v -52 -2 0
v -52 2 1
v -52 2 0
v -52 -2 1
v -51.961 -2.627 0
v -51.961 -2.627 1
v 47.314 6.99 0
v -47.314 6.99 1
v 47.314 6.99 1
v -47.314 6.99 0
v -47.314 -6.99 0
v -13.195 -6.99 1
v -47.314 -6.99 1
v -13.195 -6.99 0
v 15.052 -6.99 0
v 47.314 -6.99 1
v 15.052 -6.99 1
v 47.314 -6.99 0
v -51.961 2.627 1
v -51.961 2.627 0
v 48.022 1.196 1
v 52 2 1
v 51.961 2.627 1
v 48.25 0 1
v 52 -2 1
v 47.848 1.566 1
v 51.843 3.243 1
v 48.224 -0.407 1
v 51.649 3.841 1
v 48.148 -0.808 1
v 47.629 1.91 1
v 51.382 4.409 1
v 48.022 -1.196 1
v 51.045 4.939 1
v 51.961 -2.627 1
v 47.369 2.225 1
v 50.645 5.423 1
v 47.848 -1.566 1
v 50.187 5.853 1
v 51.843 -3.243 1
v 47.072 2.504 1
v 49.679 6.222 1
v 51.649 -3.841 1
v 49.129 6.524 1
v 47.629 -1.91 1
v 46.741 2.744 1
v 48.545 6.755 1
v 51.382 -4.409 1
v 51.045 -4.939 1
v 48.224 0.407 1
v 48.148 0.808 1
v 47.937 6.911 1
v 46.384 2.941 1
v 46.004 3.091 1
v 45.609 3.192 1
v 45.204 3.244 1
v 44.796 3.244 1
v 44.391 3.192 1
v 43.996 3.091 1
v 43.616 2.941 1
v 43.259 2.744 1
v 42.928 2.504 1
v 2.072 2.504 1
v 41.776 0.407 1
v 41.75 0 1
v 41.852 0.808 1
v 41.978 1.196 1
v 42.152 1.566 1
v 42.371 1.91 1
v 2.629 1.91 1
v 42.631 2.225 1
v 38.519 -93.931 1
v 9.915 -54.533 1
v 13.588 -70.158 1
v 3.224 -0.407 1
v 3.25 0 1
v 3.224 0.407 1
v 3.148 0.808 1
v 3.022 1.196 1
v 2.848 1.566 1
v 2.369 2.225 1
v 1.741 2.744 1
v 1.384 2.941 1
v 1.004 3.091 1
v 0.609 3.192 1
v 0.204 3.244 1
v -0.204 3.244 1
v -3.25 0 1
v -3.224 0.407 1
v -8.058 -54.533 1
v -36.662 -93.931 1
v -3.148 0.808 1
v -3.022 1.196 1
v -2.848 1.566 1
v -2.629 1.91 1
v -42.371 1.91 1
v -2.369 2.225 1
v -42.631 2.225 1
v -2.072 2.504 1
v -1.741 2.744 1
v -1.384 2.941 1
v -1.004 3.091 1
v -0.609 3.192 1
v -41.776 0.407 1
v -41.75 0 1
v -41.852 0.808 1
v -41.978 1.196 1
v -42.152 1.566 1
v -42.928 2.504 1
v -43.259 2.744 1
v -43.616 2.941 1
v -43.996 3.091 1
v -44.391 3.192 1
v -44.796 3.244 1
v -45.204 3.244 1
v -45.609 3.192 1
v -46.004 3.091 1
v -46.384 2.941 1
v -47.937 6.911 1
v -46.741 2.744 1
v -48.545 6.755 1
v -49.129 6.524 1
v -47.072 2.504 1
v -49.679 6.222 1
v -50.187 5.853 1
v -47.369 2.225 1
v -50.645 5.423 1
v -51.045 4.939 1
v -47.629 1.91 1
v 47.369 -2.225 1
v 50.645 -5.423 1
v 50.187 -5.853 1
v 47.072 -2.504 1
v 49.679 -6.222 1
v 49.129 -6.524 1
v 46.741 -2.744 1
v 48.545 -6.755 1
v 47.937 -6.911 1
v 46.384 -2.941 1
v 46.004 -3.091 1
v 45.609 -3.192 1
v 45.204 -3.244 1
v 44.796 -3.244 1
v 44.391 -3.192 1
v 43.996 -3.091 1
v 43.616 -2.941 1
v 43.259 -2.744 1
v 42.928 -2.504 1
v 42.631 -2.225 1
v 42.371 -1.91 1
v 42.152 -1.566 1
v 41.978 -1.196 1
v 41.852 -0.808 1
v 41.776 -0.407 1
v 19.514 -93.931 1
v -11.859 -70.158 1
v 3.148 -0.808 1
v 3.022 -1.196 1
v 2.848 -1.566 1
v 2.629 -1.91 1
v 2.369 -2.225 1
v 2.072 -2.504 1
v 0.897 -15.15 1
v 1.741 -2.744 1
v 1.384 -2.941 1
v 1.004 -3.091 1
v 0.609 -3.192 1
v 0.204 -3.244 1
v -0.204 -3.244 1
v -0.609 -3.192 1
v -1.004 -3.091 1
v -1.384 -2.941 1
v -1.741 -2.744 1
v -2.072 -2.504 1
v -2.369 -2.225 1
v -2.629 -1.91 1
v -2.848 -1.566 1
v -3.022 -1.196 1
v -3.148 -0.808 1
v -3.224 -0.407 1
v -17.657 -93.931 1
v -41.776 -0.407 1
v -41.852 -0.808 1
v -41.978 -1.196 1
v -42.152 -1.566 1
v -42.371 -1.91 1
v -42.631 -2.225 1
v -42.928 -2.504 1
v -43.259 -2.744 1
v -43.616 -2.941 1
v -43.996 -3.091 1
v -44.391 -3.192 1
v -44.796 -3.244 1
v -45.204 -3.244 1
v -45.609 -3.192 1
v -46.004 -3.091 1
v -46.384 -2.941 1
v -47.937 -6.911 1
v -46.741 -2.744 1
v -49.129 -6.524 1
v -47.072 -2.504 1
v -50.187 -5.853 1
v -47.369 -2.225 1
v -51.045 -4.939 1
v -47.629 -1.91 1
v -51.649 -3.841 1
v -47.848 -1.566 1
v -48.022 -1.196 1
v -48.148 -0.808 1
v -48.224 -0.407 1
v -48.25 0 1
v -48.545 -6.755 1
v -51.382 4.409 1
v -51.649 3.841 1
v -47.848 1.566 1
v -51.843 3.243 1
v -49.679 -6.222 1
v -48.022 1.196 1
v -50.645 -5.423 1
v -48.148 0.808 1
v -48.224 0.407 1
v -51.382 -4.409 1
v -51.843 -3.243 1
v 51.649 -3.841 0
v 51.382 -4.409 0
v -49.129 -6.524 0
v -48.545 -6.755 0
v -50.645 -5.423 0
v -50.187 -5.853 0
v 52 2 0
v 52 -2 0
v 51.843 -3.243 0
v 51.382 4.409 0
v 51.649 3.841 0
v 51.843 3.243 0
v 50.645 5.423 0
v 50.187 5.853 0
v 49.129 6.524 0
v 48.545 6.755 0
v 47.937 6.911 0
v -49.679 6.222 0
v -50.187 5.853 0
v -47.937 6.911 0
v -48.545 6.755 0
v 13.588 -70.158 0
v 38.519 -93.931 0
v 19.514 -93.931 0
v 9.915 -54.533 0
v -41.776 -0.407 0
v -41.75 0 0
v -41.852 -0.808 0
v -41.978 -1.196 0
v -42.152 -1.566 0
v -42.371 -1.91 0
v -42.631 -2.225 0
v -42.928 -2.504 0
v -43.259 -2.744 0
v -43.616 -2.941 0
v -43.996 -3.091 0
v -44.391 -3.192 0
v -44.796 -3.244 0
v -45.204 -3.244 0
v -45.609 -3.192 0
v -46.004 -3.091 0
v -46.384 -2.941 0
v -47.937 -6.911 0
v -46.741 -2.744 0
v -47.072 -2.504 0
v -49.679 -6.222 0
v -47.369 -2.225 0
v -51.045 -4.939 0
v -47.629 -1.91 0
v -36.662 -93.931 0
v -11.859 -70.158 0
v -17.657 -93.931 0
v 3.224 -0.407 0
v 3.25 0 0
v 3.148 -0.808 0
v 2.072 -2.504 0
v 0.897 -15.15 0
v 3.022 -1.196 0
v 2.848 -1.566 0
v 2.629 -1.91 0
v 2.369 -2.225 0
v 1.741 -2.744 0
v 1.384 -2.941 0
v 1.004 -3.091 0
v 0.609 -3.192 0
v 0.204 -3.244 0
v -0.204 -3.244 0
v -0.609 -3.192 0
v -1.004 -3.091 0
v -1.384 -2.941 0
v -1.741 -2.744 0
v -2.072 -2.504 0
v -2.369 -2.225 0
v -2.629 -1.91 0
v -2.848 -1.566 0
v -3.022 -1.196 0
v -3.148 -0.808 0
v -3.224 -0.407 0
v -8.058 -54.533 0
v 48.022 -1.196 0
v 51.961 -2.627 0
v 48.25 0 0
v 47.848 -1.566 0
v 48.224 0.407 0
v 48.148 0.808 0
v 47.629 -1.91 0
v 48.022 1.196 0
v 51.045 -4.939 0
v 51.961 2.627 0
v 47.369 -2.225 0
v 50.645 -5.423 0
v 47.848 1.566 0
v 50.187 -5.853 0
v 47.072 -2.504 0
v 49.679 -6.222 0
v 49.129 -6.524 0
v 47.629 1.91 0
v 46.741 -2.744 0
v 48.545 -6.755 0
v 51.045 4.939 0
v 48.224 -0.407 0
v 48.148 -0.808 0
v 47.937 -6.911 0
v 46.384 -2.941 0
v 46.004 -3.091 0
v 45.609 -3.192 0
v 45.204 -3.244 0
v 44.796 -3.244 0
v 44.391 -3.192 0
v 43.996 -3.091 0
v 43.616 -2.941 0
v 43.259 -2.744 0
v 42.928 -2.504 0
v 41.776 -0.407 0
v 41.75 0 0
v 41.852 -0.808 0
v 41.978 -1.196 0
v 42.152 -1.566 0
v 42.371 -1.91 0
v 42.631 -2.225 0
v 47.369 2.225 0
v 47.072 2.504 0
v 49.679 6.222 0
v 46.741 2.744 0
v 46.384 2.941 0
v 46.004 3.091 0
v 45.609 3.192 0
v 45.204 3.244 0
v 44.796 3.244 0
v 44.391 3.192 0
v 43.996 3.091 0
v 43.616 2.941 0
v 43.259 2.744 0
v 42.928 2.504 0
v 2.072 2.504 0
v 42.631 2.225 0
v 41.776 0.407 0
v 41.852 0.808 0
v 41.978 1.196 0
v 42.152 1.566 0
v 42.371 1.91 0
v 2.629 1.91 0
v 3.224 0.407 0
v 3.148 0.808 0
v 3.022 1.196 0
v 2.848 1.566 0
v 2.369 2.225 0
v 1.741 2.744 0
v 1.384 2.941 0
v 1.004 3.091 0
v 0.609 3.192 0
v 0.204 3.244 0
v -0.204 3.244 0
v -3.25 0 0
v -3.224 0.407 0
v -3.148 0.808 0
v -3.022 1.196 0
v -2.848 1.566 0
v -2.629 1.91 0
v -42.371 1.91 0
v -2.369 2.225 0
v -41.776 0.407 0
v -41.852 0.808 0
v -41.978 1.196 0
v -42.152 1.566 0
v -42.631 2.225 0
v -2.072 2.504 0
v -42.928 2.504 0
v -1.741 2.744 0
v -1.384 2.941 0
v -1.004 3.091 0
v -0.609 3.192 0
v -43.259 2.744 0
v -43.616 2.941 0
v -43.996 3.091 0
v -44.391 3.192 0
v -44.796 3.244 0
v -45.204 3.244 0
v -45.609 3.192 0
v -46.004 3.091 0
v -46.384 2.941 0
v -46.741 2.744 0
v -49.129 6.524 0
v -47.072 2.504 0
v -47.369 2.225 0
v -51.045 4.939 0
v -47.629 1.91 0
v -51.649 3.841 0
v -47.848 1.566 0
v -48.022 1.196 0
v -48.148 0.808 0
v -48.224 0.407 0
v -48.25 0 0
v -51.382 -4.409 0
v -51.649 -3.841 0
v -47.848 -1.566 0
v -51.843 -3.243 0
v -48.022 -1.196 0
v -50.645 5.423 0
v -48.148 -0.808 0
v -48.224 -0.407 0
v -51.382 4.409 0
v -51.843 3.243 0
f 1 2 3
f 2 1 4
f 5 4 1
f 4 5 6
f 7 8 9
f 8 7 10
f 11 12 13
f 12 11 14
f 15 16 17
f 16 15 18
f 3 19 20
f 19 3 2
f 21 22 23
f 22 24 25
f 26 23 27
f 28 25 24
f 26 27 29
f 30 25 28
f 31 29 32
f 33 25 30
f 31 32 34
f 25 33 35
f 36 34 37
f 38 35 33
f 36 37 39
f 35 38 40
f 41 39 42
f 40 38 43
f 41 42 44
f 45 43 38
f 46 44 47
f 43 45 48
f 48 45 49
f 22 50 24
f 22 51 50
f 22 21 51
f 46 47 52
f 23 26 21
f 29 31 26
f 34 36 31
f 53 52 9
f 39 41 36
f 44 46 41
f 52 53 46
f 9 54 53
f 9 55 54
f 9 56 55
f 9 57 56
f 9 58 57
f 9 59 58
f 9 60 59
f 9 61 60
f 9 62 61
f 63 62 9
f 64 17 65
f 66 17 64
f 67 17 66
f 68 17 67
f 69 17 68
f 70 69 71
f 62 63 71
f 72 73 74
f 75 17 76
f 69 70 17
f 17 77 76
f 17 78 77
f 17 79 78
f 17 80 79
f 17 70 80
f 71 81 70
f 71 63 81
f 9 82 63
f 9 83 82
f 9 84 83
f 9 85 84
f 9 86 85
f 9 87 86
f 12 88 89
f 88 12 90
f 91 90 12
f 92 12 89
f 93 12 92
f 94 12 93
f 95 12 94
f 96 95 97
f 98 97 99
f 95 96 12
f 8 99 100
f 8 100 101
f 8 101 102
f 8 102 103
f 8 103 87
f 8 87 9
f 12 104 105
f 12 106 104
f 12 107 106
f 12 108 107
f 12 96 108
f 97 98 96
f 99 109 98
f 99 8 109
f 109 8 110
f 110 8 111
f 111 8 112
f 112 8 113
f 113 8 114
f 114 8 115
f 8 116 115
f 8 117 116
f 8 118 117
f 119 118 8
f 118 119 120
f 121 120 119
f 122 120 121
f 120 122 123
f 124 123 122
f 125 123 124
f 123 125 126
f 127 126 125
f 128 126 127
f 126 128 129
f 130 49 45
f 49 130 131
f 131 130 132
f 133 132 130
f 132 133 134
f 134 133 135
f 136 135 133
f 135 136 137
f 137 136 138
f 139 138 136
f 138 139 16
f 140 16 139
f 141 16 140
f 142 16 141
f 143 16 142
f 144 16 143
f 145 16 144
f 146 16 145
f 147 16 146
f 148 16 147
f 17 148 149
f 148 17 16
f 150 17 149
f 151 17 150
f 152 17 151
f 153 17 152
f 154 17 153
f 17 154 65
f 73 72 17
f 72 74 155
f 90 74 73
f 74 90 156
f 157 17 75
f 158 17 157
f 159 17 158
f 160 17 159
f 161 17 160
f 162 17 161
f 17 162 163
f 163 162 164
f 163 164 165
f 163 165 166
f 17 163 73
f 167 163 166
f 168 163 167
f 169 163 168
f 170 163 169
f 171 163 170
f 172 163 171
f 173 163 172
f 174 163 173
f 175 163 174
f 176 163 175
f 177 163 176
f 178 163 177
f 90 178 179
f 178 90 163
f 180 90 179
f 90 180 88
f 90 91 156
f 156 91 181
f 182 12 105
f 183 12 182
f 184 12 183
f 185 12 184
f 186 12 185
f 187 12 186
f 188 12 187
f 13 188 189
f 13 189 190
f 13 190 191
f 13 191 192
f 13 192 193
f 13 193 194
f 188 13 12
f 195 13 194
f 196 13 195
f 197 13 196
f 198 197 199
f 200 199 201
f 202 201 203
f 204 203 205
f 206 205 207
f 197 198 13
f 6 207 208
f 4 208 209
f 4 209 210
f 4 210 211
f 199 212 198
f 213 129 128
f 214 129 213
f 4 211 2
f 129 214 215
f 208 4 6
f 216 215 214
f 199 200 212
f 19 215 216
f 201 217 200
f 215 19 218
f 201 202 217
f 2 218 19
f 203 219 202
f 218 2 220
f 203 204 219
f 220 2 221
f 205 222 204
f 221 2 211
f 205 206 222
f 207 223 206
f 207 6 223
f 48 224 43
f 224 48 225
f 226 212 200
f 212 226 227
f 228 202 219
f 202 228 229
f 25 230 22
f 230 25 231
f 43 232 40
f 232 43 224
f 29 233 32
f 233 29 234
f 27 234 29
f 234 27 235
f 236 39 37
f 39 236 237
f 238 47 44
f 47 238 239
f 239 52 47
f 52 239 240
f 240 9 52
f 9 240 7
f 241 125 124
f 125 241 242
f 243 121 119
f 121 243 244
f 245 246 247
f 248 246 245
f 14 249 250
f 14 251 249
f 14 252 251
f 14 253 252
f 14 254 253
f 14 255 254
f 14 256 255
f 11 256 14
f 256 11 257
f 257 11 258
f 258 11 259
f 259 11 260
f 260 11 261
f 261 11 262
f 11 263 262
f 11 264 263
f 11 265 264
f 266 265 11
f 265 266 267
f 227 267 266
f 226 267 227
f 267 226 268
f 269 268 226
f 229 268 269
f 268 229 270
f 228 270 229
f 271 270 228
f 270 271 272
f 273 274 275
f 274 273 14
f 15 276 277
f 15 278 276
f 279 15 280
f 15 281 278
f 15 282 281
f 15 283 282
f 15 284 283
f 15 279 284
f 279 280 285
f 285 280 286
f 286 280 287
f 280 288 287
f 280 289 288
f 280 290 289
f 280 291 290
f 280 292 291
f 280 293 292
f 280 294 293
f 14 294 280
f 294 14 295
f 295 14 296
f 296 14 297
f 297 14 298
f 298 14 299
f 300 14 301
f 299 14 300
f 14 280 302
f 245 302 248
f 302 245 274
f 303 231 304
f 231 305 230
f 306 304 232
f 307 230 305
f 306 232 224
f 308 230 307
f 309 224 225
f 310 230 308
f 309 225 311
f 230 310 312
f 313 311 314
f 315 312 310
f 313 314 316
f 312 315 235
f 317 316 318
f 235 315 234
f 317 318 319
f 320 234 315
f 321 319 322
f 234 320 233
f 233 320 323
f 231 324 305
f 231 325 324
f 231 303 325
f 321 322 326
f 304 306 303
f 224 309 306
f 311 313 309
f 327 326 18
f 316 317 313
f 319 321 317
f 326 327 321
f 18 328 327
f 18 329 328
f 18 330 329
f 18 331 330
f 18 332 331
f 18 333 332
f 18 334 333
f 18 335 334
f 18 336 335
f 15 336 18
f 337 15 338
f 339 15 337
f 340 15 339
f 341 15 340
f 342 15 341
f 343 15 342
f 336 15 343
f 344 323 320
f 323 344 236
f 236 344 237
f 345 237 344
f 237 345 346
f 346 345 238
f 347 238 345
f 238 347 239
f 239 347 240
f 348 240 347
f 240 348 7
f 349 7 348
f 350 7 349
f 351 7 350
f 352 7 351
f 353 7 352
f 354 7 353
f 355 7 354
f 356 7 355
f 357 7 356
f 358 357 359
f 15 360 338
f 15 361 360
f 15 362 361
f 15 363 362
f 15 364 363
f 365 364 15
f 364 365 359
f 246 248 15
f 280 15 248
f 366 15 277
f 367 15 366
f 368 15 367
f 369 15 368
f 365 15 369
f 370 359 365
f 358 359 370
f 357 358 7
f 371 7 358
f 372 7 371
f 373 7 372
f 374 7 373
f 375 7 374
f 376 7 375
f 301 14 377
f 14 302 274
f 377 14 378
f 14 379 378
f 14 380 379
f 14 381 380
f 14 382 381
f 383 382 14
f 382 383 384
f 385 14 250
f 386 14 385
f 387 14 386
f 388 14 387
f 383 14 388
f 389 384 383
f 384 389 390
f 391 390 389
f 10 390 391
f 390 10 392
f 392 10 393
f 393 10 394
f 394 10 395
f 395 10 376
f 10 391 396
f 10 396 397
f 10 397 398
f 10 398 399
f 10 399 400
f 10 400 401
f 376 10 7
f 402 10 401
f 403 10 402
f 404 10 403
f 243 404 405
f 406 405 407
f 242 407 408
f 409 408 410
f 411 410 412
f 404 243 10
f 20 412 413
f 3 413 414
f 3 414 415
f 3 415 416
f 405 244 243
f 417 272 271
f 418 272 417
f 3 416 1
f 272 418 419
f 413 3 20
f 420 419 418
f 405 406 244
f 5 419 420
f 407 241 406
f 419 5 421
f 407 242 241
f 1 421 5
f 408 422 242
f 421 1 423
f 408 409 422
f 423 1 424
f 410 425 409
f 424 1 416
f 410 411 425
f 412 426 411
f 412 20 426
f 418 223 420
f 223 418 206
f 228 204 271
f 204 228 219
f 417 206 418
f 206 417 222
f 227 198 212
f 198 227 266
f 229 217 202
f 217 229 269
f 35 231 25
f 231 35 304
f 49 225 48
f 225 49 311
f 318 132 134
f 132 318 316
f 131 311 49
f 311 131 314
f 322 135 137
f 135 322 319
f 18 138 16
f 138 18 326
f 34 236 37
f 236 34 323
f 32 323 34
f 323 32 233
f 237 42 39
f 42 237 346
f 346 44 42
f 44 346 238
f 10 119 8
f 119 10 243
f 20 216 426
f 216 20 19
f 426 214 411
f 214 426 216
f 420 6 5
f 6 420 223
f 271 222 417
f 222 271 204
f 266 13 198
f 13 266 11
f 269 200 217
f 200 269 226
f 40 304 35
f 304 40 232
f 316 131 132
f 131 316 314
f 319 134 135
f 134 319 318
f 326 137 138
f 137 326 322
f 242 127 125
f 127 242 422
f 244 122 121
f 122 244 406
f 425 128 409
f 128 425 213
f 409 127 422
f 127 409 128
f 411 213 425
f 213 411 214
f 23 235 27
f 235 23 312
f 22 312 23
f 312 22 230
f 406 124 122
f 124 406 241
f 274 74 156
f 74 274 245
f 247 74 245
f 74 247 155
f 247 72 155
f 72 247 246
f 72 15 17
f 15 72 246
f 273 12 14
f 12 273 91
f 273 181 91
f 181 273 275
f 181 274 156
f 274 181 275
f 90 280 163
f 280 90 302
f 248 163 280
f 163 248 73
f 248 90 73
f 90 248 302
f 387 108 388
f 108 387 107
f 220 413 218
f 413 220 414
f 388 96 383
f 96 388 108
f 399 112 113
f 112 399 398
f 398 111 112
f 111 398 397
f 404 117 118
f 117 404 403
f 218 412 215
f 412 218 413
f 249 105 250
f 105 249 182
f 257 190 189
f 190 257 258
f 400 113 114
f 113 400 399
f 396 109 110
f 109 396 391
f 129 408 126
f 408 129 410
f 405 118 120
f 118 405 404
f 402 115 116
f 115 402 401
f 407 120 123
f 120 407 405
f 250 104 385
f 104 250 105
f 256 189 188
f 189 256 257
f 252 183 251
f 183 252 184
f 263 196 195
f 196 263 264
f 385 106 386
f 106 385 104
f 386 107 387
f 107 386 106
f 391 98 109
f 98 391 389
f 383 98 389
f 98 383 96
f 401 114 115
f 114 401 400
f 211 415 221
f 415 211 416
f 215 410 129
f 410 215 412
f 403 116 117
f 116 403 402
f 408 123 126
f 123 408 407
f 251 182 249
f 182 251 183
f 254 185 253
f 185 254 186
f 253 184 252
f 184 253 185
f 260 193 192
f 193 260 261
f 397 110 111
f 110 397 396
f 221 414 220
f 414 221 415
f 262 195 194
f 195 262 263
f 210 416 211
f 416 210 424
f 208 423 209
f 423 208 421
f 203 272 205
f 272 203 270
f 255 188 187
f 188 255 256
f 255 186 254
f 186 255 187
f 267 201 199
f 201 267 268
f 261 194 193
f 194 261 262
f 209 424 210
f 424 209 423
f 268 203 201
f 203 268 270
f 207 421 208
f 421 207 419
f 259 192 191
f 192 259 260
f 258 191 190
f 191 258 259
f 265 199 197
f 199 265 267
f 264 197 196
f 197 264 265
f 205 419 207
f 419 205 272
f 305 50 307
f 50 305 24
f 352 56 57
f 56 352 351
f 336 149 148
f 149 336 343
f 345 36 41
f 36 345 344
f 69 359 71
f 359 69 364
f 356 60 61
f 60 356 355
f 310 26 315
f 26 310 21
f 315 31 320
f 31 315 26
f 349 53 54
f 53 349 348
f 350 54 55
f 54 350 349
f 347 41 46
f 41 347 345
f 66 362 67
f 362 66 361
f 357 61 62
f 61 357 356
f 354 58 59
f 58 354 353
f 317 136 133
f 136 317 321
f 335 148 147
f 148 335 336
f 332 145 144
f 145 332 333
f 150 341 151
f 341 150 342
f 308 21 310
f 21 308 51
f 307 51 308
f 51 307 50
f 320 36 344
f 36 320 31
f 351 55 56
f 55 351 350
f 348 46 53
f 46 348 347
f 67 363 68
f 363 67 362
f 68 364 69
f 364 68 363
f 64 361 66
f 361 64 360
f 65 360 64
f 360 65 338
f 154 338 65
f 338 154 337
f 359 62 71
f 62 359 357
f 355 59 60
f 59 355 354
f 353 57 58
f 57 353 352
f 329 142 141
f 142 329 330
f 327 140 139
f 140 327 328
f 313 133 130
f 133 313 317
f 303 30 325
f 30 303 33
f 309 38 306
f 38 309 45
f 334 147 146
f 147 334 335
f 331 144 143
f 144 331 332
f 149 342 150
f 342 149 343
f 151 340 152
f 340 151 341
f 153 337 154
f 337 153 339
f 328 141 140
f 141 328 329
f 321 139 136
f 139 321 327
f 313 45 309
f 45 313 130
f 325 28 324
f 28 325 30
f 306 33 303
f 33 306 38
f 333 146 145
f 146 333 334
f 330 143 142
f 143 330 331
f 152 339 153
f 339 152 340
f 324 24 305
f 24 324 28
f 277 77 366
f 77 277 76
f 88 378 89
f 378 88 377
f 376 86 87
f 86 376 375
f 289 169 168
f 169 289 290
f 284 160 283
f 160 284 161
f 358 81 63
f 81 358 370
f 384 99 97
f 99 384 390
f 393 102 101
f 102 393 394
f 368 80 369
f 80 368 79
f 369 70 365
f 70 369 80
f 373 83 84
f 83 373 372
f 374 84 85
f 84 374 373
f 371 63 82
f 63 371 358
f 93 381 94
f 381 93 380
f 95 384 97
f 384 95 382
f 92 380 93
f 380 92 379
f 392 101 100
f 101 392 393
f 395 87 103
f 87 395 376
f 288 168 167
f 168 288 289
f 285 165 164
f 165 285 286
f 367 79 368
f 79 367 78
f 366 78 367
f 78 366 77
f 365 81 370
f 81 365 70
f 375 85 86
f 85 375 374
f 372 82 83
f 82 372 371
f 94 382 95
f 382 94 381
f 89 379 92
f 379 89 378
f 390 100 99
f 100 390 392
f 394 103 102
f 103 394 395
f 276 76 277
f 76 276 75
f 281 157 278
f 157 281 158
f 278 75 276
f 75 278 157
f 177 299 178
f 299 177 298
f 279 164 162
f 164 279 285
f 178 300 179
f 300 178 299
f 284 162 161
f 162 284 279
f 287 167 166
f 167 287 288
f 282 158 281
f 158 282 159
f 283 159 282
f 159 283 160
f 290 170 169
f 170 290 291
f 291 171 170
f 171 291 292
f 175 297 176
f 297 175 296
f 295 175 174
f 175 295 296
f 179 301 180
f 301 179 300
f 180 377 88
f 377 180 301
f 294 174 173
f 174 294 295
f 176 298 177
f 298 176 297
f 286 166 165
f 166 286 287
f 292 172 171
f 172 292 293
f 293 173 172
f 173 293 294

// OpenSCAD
$fn = 50;


difference() {
	union() {
		translate(v = [0, 0, 0]) {
			rotate(a = [0, 0, 0]) {
				hull() {
					translate(v = [-47.0000000000, 2.0000000000, 0]) {
						rotate(a = [0, 0, 0]) {
							translate(v = [0, 0, 0]) {
								rotate(a = [0, 0, 0]) {
									cylinder(h = 1, r = 5);
								}
							}
						}
					}
					translate(v = [47.0000000000, 2.0000000000, 0]) {
						rotate(a = [0, 0, 0]) {
							translate(v = [0, 0, 0]) {
								rotate(a = [0, 0, 0]) {
									cylinder(h = 1, r = 5);
								}
							}
						}
					}
					translate(v = [-47.0000000000, -2.0000000000, 0]) {
						rotate(a = [0, 0, 0]) {
							translate(v = [0, 0, 0]) {
								rotate(a = [0, 0, 0]) {
									cylinder(h = 1, r = 5);
								}
							}
						}
					}
					translate(v = [47.0000000000, -2.0000000000, 0]) {
						rotate(a = [0, 0, 0]) {
							translate(v = [0, 0, 0]) {
								rotate(a = [0, 0, 0]) {
									cylinder(h = 1, r = 5);
								}
							}
						}
					}
				}
			}
		}
		translate(v = [0, 0, 0]) {
			rotate(a = [0, 0, 0]) {
				linear_extrude(height = 1) {
					text(font = "DejaVu Sans Mono:style=Bold", halign = "center", size = 95.0000000000, text = "A", valign = "top");
				}
			}
		}
	}
	union() {
		translate(v = [-45.0000000000, 0.0000000000, -125.0000000000]) {
			rotate(a = [0, 0, 0]) {
				cylinder(h = 250, r = 3.2500000000);
			}
		}
		translate(v = [45.0000000000, 0.0000000000, -125.0000000000]) {
			rotate(a = [0, 0, 0]) {
				cylinder(h = 250, r = 3.2500000000);
			}
		}
		translate(v = [45.0000000000, 0.0000000000, -125.0000000000]) {
			rotate(a = [0, 0, 0]) {
				cylinder(h = 250, r = 3.2500000000);
			}
		}
		translate(v = [0, 0, -125.0000000000]) {
			rotate(a = [0, 0, 0]) {
				cylinder(h = 250, r = 3.2500000000);
			}
		}
	}
}
